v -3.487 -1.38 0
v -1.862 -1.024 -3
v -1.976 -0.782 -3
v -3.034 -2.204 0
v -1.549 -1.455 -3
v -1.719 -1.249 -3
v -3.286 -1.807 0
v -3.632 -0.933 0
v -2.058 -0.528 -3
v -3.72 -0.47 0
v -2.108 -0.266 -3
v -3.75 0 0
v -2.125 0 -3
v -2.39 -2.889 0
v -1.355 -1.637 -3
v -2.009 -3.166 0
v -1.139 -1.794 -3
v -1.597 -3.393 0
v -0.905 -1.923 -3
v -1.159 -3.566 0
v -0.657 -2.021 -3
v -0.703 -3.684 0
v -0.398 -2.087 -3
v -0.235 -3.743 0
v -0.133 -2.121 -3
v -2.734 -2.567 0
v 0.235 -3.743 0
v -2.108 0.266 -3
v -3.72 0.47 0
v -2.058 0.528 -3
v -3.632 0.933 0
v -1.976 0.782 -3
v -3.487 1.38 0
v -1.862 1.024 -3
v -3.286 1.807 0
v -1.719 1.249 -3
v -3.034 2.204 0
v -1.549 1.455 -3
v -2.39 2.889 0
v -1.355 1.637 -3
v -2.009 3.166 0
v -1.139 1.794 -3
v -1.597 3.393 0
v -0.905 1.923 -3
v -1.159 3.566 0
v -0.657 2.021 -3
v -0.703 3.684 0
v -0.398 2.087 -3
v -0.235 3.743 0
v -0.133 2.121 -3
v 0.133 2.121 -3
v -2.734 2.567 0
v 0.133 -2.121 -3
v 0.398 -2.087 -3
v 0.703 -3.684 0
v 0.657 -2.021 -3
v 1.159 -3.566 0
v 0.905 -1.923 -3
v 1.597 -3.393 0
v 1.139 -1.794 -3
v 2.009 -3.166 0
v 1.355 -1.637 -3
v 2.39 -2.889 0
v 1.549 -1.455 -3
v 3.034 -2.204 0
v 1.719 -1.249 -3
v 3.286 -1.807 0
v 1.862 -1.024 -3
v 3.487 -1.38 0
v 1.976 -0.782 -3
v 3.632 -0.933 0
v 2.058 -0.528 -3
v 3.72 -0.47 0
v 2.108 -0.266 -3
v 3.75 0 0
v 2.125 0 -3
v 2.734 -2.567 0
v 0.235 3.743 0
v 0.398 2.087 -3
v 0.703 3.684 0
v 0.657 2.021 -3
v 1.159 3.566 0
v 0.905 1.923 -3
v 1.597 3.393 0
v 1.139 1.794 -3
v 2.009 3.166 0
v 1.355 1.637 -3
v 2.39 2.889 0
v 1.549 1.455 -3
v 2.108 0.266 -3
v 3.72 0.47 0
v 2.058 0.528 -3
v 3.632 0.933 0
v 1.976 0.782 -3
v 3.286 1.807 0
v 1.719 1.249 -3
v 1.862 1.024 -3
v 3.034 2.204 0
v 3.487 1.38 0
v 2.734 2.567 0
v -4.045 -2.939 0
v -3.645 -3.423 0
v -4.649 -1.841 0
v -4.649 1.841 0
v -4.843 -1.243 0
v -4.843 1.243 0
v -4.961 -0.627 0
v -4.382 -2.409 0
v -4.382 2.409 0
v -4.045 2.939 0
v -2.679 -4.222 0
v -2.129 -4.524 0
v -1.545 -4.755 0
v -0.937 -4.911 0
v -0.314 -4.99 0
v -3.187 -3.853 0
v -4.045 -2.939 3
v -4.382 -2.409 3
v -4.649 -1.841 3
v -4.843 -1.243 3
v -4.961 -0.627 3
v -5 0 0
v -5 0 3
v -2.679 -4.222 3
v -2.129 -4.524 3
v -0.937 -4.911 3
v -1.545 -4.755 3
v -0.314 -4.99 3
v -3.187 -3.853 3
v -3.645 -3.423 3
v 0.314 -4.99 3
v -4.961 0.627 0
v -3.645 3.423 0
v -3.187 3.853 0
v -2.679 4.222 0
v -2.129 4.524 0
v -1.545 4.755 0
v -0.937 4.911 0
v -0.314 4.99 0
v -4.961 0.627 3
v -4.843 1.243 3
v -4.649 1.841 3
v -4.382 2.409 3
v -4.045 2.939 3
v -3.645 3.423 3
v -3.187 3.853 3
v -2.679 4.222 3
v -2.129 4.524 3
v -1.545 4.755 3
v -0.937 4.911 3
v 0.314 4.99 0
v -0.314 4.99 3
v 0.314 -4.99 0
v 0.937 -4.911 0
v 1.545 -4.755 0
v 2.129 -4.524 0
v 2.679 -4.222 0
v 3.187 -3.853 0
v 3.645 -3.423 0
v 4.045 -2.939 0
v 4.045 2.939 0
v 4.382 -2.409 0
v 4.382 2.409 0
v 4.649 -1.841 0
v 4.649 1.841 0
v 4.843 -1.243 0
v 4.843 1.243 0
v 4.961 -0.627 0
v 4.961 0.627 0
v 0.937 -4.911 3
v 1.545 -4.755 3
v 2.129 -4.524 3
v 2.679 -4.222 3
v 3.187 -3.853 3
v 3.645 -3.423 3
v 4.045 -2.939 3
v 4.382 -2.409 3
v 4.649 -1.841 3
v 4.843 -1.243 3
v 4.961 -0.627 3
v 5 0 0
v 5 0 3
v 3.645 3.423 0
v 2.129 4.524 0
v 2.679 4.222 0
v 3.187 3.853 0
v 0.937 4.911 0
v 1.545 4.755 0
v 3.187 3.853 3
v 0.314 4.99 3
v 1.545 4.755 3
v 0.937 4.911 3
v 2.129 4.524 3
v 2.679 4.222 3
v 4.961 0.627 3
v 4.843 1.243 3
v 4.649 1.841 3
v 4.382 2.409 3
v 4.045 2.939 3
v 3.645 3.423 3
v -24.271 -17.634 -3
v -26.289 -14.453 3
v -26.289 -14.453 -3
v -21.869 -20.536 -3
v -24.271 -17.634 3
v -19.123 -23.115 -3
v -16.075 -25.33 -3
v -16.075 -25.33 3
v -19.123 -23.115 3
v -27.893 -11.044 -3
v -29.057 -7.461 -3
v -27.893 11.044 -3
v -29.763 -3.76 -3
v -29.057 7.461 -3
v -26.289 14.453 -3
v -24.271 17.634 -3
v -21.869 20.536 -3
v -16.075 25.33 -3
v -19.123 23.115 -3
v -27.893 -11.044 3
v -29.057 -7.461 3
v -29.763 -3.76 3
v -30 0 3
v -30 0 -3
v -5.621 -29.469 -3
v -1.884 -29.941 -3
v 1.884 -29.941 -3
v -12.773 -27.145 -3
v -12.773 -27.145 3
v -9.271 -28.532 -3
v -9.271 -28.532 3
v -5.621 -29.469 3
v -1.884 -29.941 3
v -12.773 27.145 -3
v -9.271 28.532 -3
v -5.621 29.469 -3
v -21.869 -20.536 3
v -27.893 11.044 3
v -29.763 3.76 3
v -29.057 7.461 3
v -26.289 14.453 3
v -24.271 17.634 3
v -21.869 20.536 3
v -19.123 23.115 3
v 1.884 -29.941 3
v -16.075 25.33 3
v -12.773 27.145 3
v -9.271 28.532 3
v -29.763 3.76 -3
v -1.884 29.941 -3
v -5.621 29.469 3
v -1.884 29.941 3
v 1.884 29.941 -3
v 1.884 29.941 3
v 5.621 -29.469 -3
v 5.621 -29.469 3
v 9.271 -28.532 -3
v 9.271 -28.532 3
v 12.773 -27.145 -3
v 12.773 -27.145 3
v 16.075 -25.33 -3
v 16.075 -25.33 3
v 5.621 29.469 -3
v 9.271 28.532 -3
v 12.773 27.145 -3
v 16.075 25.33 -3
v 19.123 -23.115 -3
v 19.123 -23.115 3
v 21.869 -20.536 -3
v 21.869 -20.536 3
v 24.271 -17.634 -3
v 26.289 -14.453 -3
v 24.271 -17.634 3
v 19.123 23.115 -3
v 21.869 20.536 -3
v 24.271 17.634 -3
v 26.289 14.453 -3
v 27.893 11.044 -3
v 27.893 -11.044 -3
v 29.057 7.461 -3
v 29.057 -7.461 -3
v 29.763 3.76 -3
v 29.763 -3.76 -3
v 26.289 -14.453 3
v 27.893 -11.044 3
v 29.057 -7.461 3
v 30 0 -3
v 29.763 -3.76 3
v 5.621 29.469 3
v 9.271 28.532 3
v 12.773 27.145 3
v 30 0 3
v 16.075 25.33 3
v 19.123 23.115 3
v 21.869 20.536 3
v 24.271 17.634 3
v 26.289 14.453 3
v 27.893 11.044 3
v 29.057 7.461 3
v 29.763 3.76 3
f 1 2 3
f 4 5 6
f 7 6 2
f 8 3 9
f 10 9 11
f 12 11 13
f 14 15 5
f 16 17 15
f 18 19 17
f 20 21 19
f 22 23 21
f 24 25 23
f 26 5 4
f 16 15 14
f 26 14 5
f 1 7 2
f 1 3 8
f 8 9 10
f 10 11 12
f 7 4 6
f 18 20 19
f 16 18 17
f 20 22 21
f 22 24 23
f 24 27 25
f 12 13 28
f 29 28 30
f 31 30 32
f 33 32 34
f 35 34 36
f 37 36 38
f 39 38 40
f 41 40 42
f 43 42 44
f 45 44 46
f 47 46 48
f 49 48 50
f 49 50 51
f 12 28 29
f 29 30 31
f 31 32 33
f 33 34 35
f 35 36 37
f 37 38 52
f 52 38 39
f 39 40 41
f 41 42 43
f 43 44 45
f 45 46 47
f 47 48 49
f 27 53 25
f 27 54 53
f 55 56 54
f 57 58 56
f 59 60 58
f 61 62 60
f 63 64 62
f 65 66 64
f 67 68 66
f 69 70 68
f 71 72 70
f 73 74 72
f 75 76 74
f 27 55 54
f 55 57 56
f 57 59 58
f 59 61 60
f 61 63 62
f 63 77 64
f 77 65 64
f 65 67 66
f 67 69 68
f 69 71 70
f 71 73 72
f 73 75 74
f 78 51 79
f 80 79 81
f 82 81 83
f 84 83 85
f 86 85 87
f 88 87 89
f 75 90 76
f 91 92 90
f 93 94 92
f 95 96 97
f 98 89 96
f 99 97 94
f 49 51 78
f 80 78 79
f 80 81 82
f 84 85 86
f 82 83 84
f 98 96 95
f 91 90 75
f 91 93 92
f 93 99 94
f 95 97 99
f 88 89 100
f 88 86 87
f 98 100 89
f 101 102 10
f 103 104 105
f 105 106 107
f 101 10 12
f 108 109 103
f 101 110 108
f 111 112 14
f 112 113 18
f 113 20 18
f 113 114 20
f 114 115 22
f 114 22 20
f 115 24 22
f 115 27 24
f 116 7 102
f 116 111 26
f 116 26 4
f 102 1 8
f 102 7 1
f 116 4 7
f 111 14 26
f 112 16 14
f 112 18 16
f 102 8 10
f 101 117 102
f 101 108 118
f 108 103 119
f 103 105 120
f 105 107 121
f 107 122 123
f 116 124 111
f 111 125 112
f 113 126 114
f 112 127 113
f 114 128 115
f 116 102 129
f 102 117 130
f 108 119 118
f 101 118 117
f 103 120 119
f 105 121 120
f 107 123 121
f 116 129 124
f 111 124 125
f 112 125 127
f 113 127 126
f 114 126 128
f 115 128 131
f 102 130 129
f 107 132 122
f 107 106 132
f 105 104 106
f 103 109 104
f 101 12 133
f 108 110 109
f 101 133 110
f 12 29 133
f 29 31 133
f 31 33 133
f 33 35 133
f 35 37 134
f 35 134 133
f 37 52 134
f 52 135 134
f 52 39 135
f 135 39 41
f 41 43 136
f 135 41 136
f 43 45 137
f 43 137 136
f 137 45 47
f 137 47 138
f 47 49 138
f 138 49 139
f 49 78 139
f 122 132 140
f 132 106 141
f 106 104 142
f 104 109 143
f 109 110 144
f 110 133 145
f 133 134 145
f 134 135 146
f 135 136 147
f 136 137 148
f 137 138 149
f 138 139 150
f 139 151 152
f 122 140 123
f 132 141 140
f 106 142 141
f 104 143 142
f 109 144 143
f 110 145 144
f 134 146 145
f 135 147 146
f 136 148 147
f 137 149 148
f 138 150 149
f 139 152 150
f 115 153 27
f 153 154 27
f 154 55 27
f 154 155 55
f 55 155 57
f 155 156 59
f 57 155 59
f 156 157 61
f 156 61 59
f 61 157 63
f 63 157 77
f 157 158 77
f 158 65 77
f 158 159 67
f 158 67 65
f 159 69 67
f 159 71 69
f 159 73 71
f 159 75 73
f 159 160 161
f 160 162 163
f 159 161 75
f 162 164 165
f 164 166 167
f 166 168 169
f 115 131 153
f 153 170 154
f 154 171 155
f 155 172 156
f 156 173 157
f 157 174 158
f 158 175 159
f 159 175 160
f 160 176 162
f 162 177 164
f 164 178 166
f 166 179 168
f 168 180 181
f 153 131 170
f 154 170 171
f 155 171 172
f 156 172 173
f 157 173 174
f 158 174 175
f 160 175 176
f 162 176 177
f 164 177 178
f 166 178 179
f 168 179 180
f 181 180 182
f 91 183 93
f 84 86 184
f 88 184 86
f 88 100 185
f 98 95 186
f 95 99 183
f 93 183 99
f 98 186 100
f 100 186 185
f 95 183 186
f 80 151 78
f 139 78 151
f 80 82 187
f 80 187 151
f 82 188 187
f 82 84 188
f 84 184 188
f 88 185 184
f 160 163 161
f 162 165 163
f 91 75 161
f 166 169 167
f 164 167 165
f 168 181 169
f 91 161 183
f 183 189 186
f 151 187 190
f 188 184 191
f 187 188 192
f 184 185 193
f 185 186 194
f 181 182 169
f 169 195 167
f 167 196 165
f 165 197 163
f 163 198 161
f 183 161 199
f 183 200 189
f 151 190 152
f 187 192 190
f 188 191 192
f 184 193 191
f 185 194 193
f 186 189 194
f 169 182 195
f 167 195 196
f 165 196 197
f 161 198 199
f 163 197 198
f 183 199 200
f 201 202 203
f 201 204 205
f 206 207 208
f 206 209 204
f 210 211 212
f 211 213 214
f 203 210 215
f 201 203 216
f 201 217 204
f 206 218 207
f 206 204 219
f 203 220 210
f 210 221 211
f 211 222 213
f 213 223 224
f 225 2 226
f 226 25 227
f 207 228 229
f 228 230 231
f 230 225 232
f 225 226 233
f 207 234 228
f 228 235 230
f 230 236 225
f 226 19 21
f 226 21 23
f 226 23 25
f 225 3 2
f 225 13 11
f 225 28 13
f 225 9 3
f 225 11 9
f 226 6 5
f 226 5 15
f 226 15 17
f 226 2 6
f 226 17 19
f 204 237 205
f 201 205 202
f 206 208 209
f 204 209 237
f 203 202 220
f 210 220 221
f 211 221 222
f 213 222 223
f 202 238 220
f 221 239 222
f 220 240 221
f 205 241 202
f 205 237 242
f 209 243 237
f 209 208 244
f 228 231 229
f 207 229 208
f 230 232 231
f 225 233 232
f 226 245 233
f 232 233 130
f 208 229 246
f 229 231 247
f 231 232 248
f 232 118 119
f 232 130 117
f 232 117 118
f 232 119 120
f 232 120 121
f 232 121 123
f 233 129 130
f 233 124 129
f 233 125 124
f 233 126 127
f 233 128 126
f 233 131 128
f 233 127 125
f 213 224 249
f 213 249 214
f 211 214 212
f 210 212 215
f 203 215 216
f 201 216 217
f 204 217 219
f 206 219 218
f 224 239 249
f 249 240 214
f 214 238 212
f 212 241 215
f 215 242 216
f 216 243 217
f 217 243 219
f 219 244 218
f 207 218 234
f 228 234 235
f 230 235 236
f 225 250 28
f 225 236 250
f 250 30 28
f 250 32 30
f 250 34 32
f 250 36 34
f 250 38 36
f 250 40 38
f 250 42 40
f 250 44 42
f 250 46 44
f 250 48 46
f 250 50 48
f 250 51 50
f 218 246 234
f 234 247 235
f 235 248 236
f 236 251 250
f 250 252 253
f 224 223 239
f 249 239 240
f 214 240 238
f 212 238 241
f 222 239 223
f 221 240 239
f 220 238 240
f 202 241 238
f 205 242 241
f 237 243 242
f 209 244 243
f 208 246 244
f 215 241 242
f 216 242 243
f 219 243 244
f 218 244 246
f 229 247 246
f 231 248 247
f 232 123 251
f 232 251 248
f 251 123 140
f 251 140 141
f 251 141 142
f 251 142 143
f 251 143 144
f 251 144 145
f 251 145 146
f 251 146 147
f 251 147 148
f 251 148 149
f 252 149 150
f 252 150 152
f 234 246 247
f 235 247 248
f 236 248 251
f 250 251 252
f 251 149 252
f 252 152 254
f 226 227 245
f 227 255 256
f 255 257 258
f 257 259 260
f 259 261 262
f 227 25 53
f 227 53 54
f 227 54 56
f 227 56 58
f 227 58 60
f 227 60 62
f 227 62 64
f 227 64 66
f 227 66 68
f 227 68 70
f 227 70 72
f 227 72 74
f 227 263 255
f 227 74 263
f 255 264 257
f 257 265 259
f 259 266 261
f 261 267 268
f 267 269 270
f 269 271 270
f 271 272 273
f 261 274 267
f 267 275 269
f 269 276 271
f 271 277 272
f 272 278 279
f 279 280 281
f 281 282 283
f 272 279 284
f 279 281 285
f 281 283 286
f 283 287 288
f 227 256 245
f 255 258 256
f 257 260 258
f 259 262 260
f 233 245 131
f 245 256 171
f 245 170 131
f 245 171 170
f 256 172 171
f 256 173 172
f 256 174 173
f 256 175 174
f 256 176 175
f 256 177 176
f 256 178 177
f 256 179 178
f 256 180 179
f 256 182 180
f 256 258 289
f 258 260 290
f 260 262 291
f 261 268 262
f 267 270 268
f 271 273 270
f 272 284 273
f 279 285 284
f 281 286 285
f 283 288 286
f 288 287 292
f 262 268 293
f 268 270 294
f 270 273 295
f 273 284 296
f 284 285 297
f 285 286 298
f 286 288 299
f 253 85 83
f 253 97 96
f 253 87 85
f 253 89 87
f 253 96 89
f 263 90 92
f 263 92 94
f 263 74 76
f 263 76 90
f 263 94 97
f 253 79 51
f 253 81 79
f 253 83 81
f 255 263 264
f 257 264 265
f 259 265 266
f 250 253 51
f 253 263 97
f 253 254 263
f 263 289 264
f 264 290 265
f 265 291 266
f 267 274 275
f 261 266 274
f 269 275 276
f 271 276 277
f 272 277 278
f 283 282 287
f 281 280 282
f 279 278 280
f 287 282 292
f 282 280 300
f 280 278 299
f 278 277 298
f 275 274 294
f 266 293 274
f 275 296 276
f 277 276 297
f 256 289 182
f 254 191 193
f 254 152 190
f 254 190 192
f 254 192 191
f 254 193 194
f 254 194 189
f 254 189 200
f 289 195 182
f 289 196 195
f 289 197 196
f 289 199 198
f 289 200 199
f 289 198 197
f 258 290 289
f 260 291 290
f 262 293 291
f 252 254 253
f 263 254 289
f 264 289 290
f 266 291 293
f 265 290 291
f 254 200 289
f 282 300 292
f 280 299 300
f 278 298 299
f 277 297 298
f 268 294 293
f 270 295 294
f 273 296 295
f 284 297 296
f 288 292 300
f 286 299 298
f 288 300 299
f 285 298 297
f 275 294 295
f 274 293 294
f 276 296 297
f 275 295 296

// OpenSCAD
$fn = 50;

difference() {
	union() {
		translate(v = [0, 0, -3.0]) {
			cylinder(h = 6, r = 30.0);
		}
	}
	union() {
		translate(v = [0, 0, 0]) {
			rotate(a = [0, 0, 0]) {
				difference() {
					union() {
						translate(v = [0, 0, -6.0]) {
							cylinder(h = 6, r = 2.0);
						}
						translate(v = [0, 0, -3]) {
							cylinder(h = 3, r1 = 2.125, r2 = 3.75);
						}
						translate(v = [0, 0, -6.0]) {
							cylinder(h = 6, r = 2.125);
						}
						translate(v = [0, 0, -6.0]) {
							cylinder(h = 6, r = 2.0);
						}
					}
					union();
				}
			}
		}
		#cylinder(h = 3, r = 5.0);
	}
}
